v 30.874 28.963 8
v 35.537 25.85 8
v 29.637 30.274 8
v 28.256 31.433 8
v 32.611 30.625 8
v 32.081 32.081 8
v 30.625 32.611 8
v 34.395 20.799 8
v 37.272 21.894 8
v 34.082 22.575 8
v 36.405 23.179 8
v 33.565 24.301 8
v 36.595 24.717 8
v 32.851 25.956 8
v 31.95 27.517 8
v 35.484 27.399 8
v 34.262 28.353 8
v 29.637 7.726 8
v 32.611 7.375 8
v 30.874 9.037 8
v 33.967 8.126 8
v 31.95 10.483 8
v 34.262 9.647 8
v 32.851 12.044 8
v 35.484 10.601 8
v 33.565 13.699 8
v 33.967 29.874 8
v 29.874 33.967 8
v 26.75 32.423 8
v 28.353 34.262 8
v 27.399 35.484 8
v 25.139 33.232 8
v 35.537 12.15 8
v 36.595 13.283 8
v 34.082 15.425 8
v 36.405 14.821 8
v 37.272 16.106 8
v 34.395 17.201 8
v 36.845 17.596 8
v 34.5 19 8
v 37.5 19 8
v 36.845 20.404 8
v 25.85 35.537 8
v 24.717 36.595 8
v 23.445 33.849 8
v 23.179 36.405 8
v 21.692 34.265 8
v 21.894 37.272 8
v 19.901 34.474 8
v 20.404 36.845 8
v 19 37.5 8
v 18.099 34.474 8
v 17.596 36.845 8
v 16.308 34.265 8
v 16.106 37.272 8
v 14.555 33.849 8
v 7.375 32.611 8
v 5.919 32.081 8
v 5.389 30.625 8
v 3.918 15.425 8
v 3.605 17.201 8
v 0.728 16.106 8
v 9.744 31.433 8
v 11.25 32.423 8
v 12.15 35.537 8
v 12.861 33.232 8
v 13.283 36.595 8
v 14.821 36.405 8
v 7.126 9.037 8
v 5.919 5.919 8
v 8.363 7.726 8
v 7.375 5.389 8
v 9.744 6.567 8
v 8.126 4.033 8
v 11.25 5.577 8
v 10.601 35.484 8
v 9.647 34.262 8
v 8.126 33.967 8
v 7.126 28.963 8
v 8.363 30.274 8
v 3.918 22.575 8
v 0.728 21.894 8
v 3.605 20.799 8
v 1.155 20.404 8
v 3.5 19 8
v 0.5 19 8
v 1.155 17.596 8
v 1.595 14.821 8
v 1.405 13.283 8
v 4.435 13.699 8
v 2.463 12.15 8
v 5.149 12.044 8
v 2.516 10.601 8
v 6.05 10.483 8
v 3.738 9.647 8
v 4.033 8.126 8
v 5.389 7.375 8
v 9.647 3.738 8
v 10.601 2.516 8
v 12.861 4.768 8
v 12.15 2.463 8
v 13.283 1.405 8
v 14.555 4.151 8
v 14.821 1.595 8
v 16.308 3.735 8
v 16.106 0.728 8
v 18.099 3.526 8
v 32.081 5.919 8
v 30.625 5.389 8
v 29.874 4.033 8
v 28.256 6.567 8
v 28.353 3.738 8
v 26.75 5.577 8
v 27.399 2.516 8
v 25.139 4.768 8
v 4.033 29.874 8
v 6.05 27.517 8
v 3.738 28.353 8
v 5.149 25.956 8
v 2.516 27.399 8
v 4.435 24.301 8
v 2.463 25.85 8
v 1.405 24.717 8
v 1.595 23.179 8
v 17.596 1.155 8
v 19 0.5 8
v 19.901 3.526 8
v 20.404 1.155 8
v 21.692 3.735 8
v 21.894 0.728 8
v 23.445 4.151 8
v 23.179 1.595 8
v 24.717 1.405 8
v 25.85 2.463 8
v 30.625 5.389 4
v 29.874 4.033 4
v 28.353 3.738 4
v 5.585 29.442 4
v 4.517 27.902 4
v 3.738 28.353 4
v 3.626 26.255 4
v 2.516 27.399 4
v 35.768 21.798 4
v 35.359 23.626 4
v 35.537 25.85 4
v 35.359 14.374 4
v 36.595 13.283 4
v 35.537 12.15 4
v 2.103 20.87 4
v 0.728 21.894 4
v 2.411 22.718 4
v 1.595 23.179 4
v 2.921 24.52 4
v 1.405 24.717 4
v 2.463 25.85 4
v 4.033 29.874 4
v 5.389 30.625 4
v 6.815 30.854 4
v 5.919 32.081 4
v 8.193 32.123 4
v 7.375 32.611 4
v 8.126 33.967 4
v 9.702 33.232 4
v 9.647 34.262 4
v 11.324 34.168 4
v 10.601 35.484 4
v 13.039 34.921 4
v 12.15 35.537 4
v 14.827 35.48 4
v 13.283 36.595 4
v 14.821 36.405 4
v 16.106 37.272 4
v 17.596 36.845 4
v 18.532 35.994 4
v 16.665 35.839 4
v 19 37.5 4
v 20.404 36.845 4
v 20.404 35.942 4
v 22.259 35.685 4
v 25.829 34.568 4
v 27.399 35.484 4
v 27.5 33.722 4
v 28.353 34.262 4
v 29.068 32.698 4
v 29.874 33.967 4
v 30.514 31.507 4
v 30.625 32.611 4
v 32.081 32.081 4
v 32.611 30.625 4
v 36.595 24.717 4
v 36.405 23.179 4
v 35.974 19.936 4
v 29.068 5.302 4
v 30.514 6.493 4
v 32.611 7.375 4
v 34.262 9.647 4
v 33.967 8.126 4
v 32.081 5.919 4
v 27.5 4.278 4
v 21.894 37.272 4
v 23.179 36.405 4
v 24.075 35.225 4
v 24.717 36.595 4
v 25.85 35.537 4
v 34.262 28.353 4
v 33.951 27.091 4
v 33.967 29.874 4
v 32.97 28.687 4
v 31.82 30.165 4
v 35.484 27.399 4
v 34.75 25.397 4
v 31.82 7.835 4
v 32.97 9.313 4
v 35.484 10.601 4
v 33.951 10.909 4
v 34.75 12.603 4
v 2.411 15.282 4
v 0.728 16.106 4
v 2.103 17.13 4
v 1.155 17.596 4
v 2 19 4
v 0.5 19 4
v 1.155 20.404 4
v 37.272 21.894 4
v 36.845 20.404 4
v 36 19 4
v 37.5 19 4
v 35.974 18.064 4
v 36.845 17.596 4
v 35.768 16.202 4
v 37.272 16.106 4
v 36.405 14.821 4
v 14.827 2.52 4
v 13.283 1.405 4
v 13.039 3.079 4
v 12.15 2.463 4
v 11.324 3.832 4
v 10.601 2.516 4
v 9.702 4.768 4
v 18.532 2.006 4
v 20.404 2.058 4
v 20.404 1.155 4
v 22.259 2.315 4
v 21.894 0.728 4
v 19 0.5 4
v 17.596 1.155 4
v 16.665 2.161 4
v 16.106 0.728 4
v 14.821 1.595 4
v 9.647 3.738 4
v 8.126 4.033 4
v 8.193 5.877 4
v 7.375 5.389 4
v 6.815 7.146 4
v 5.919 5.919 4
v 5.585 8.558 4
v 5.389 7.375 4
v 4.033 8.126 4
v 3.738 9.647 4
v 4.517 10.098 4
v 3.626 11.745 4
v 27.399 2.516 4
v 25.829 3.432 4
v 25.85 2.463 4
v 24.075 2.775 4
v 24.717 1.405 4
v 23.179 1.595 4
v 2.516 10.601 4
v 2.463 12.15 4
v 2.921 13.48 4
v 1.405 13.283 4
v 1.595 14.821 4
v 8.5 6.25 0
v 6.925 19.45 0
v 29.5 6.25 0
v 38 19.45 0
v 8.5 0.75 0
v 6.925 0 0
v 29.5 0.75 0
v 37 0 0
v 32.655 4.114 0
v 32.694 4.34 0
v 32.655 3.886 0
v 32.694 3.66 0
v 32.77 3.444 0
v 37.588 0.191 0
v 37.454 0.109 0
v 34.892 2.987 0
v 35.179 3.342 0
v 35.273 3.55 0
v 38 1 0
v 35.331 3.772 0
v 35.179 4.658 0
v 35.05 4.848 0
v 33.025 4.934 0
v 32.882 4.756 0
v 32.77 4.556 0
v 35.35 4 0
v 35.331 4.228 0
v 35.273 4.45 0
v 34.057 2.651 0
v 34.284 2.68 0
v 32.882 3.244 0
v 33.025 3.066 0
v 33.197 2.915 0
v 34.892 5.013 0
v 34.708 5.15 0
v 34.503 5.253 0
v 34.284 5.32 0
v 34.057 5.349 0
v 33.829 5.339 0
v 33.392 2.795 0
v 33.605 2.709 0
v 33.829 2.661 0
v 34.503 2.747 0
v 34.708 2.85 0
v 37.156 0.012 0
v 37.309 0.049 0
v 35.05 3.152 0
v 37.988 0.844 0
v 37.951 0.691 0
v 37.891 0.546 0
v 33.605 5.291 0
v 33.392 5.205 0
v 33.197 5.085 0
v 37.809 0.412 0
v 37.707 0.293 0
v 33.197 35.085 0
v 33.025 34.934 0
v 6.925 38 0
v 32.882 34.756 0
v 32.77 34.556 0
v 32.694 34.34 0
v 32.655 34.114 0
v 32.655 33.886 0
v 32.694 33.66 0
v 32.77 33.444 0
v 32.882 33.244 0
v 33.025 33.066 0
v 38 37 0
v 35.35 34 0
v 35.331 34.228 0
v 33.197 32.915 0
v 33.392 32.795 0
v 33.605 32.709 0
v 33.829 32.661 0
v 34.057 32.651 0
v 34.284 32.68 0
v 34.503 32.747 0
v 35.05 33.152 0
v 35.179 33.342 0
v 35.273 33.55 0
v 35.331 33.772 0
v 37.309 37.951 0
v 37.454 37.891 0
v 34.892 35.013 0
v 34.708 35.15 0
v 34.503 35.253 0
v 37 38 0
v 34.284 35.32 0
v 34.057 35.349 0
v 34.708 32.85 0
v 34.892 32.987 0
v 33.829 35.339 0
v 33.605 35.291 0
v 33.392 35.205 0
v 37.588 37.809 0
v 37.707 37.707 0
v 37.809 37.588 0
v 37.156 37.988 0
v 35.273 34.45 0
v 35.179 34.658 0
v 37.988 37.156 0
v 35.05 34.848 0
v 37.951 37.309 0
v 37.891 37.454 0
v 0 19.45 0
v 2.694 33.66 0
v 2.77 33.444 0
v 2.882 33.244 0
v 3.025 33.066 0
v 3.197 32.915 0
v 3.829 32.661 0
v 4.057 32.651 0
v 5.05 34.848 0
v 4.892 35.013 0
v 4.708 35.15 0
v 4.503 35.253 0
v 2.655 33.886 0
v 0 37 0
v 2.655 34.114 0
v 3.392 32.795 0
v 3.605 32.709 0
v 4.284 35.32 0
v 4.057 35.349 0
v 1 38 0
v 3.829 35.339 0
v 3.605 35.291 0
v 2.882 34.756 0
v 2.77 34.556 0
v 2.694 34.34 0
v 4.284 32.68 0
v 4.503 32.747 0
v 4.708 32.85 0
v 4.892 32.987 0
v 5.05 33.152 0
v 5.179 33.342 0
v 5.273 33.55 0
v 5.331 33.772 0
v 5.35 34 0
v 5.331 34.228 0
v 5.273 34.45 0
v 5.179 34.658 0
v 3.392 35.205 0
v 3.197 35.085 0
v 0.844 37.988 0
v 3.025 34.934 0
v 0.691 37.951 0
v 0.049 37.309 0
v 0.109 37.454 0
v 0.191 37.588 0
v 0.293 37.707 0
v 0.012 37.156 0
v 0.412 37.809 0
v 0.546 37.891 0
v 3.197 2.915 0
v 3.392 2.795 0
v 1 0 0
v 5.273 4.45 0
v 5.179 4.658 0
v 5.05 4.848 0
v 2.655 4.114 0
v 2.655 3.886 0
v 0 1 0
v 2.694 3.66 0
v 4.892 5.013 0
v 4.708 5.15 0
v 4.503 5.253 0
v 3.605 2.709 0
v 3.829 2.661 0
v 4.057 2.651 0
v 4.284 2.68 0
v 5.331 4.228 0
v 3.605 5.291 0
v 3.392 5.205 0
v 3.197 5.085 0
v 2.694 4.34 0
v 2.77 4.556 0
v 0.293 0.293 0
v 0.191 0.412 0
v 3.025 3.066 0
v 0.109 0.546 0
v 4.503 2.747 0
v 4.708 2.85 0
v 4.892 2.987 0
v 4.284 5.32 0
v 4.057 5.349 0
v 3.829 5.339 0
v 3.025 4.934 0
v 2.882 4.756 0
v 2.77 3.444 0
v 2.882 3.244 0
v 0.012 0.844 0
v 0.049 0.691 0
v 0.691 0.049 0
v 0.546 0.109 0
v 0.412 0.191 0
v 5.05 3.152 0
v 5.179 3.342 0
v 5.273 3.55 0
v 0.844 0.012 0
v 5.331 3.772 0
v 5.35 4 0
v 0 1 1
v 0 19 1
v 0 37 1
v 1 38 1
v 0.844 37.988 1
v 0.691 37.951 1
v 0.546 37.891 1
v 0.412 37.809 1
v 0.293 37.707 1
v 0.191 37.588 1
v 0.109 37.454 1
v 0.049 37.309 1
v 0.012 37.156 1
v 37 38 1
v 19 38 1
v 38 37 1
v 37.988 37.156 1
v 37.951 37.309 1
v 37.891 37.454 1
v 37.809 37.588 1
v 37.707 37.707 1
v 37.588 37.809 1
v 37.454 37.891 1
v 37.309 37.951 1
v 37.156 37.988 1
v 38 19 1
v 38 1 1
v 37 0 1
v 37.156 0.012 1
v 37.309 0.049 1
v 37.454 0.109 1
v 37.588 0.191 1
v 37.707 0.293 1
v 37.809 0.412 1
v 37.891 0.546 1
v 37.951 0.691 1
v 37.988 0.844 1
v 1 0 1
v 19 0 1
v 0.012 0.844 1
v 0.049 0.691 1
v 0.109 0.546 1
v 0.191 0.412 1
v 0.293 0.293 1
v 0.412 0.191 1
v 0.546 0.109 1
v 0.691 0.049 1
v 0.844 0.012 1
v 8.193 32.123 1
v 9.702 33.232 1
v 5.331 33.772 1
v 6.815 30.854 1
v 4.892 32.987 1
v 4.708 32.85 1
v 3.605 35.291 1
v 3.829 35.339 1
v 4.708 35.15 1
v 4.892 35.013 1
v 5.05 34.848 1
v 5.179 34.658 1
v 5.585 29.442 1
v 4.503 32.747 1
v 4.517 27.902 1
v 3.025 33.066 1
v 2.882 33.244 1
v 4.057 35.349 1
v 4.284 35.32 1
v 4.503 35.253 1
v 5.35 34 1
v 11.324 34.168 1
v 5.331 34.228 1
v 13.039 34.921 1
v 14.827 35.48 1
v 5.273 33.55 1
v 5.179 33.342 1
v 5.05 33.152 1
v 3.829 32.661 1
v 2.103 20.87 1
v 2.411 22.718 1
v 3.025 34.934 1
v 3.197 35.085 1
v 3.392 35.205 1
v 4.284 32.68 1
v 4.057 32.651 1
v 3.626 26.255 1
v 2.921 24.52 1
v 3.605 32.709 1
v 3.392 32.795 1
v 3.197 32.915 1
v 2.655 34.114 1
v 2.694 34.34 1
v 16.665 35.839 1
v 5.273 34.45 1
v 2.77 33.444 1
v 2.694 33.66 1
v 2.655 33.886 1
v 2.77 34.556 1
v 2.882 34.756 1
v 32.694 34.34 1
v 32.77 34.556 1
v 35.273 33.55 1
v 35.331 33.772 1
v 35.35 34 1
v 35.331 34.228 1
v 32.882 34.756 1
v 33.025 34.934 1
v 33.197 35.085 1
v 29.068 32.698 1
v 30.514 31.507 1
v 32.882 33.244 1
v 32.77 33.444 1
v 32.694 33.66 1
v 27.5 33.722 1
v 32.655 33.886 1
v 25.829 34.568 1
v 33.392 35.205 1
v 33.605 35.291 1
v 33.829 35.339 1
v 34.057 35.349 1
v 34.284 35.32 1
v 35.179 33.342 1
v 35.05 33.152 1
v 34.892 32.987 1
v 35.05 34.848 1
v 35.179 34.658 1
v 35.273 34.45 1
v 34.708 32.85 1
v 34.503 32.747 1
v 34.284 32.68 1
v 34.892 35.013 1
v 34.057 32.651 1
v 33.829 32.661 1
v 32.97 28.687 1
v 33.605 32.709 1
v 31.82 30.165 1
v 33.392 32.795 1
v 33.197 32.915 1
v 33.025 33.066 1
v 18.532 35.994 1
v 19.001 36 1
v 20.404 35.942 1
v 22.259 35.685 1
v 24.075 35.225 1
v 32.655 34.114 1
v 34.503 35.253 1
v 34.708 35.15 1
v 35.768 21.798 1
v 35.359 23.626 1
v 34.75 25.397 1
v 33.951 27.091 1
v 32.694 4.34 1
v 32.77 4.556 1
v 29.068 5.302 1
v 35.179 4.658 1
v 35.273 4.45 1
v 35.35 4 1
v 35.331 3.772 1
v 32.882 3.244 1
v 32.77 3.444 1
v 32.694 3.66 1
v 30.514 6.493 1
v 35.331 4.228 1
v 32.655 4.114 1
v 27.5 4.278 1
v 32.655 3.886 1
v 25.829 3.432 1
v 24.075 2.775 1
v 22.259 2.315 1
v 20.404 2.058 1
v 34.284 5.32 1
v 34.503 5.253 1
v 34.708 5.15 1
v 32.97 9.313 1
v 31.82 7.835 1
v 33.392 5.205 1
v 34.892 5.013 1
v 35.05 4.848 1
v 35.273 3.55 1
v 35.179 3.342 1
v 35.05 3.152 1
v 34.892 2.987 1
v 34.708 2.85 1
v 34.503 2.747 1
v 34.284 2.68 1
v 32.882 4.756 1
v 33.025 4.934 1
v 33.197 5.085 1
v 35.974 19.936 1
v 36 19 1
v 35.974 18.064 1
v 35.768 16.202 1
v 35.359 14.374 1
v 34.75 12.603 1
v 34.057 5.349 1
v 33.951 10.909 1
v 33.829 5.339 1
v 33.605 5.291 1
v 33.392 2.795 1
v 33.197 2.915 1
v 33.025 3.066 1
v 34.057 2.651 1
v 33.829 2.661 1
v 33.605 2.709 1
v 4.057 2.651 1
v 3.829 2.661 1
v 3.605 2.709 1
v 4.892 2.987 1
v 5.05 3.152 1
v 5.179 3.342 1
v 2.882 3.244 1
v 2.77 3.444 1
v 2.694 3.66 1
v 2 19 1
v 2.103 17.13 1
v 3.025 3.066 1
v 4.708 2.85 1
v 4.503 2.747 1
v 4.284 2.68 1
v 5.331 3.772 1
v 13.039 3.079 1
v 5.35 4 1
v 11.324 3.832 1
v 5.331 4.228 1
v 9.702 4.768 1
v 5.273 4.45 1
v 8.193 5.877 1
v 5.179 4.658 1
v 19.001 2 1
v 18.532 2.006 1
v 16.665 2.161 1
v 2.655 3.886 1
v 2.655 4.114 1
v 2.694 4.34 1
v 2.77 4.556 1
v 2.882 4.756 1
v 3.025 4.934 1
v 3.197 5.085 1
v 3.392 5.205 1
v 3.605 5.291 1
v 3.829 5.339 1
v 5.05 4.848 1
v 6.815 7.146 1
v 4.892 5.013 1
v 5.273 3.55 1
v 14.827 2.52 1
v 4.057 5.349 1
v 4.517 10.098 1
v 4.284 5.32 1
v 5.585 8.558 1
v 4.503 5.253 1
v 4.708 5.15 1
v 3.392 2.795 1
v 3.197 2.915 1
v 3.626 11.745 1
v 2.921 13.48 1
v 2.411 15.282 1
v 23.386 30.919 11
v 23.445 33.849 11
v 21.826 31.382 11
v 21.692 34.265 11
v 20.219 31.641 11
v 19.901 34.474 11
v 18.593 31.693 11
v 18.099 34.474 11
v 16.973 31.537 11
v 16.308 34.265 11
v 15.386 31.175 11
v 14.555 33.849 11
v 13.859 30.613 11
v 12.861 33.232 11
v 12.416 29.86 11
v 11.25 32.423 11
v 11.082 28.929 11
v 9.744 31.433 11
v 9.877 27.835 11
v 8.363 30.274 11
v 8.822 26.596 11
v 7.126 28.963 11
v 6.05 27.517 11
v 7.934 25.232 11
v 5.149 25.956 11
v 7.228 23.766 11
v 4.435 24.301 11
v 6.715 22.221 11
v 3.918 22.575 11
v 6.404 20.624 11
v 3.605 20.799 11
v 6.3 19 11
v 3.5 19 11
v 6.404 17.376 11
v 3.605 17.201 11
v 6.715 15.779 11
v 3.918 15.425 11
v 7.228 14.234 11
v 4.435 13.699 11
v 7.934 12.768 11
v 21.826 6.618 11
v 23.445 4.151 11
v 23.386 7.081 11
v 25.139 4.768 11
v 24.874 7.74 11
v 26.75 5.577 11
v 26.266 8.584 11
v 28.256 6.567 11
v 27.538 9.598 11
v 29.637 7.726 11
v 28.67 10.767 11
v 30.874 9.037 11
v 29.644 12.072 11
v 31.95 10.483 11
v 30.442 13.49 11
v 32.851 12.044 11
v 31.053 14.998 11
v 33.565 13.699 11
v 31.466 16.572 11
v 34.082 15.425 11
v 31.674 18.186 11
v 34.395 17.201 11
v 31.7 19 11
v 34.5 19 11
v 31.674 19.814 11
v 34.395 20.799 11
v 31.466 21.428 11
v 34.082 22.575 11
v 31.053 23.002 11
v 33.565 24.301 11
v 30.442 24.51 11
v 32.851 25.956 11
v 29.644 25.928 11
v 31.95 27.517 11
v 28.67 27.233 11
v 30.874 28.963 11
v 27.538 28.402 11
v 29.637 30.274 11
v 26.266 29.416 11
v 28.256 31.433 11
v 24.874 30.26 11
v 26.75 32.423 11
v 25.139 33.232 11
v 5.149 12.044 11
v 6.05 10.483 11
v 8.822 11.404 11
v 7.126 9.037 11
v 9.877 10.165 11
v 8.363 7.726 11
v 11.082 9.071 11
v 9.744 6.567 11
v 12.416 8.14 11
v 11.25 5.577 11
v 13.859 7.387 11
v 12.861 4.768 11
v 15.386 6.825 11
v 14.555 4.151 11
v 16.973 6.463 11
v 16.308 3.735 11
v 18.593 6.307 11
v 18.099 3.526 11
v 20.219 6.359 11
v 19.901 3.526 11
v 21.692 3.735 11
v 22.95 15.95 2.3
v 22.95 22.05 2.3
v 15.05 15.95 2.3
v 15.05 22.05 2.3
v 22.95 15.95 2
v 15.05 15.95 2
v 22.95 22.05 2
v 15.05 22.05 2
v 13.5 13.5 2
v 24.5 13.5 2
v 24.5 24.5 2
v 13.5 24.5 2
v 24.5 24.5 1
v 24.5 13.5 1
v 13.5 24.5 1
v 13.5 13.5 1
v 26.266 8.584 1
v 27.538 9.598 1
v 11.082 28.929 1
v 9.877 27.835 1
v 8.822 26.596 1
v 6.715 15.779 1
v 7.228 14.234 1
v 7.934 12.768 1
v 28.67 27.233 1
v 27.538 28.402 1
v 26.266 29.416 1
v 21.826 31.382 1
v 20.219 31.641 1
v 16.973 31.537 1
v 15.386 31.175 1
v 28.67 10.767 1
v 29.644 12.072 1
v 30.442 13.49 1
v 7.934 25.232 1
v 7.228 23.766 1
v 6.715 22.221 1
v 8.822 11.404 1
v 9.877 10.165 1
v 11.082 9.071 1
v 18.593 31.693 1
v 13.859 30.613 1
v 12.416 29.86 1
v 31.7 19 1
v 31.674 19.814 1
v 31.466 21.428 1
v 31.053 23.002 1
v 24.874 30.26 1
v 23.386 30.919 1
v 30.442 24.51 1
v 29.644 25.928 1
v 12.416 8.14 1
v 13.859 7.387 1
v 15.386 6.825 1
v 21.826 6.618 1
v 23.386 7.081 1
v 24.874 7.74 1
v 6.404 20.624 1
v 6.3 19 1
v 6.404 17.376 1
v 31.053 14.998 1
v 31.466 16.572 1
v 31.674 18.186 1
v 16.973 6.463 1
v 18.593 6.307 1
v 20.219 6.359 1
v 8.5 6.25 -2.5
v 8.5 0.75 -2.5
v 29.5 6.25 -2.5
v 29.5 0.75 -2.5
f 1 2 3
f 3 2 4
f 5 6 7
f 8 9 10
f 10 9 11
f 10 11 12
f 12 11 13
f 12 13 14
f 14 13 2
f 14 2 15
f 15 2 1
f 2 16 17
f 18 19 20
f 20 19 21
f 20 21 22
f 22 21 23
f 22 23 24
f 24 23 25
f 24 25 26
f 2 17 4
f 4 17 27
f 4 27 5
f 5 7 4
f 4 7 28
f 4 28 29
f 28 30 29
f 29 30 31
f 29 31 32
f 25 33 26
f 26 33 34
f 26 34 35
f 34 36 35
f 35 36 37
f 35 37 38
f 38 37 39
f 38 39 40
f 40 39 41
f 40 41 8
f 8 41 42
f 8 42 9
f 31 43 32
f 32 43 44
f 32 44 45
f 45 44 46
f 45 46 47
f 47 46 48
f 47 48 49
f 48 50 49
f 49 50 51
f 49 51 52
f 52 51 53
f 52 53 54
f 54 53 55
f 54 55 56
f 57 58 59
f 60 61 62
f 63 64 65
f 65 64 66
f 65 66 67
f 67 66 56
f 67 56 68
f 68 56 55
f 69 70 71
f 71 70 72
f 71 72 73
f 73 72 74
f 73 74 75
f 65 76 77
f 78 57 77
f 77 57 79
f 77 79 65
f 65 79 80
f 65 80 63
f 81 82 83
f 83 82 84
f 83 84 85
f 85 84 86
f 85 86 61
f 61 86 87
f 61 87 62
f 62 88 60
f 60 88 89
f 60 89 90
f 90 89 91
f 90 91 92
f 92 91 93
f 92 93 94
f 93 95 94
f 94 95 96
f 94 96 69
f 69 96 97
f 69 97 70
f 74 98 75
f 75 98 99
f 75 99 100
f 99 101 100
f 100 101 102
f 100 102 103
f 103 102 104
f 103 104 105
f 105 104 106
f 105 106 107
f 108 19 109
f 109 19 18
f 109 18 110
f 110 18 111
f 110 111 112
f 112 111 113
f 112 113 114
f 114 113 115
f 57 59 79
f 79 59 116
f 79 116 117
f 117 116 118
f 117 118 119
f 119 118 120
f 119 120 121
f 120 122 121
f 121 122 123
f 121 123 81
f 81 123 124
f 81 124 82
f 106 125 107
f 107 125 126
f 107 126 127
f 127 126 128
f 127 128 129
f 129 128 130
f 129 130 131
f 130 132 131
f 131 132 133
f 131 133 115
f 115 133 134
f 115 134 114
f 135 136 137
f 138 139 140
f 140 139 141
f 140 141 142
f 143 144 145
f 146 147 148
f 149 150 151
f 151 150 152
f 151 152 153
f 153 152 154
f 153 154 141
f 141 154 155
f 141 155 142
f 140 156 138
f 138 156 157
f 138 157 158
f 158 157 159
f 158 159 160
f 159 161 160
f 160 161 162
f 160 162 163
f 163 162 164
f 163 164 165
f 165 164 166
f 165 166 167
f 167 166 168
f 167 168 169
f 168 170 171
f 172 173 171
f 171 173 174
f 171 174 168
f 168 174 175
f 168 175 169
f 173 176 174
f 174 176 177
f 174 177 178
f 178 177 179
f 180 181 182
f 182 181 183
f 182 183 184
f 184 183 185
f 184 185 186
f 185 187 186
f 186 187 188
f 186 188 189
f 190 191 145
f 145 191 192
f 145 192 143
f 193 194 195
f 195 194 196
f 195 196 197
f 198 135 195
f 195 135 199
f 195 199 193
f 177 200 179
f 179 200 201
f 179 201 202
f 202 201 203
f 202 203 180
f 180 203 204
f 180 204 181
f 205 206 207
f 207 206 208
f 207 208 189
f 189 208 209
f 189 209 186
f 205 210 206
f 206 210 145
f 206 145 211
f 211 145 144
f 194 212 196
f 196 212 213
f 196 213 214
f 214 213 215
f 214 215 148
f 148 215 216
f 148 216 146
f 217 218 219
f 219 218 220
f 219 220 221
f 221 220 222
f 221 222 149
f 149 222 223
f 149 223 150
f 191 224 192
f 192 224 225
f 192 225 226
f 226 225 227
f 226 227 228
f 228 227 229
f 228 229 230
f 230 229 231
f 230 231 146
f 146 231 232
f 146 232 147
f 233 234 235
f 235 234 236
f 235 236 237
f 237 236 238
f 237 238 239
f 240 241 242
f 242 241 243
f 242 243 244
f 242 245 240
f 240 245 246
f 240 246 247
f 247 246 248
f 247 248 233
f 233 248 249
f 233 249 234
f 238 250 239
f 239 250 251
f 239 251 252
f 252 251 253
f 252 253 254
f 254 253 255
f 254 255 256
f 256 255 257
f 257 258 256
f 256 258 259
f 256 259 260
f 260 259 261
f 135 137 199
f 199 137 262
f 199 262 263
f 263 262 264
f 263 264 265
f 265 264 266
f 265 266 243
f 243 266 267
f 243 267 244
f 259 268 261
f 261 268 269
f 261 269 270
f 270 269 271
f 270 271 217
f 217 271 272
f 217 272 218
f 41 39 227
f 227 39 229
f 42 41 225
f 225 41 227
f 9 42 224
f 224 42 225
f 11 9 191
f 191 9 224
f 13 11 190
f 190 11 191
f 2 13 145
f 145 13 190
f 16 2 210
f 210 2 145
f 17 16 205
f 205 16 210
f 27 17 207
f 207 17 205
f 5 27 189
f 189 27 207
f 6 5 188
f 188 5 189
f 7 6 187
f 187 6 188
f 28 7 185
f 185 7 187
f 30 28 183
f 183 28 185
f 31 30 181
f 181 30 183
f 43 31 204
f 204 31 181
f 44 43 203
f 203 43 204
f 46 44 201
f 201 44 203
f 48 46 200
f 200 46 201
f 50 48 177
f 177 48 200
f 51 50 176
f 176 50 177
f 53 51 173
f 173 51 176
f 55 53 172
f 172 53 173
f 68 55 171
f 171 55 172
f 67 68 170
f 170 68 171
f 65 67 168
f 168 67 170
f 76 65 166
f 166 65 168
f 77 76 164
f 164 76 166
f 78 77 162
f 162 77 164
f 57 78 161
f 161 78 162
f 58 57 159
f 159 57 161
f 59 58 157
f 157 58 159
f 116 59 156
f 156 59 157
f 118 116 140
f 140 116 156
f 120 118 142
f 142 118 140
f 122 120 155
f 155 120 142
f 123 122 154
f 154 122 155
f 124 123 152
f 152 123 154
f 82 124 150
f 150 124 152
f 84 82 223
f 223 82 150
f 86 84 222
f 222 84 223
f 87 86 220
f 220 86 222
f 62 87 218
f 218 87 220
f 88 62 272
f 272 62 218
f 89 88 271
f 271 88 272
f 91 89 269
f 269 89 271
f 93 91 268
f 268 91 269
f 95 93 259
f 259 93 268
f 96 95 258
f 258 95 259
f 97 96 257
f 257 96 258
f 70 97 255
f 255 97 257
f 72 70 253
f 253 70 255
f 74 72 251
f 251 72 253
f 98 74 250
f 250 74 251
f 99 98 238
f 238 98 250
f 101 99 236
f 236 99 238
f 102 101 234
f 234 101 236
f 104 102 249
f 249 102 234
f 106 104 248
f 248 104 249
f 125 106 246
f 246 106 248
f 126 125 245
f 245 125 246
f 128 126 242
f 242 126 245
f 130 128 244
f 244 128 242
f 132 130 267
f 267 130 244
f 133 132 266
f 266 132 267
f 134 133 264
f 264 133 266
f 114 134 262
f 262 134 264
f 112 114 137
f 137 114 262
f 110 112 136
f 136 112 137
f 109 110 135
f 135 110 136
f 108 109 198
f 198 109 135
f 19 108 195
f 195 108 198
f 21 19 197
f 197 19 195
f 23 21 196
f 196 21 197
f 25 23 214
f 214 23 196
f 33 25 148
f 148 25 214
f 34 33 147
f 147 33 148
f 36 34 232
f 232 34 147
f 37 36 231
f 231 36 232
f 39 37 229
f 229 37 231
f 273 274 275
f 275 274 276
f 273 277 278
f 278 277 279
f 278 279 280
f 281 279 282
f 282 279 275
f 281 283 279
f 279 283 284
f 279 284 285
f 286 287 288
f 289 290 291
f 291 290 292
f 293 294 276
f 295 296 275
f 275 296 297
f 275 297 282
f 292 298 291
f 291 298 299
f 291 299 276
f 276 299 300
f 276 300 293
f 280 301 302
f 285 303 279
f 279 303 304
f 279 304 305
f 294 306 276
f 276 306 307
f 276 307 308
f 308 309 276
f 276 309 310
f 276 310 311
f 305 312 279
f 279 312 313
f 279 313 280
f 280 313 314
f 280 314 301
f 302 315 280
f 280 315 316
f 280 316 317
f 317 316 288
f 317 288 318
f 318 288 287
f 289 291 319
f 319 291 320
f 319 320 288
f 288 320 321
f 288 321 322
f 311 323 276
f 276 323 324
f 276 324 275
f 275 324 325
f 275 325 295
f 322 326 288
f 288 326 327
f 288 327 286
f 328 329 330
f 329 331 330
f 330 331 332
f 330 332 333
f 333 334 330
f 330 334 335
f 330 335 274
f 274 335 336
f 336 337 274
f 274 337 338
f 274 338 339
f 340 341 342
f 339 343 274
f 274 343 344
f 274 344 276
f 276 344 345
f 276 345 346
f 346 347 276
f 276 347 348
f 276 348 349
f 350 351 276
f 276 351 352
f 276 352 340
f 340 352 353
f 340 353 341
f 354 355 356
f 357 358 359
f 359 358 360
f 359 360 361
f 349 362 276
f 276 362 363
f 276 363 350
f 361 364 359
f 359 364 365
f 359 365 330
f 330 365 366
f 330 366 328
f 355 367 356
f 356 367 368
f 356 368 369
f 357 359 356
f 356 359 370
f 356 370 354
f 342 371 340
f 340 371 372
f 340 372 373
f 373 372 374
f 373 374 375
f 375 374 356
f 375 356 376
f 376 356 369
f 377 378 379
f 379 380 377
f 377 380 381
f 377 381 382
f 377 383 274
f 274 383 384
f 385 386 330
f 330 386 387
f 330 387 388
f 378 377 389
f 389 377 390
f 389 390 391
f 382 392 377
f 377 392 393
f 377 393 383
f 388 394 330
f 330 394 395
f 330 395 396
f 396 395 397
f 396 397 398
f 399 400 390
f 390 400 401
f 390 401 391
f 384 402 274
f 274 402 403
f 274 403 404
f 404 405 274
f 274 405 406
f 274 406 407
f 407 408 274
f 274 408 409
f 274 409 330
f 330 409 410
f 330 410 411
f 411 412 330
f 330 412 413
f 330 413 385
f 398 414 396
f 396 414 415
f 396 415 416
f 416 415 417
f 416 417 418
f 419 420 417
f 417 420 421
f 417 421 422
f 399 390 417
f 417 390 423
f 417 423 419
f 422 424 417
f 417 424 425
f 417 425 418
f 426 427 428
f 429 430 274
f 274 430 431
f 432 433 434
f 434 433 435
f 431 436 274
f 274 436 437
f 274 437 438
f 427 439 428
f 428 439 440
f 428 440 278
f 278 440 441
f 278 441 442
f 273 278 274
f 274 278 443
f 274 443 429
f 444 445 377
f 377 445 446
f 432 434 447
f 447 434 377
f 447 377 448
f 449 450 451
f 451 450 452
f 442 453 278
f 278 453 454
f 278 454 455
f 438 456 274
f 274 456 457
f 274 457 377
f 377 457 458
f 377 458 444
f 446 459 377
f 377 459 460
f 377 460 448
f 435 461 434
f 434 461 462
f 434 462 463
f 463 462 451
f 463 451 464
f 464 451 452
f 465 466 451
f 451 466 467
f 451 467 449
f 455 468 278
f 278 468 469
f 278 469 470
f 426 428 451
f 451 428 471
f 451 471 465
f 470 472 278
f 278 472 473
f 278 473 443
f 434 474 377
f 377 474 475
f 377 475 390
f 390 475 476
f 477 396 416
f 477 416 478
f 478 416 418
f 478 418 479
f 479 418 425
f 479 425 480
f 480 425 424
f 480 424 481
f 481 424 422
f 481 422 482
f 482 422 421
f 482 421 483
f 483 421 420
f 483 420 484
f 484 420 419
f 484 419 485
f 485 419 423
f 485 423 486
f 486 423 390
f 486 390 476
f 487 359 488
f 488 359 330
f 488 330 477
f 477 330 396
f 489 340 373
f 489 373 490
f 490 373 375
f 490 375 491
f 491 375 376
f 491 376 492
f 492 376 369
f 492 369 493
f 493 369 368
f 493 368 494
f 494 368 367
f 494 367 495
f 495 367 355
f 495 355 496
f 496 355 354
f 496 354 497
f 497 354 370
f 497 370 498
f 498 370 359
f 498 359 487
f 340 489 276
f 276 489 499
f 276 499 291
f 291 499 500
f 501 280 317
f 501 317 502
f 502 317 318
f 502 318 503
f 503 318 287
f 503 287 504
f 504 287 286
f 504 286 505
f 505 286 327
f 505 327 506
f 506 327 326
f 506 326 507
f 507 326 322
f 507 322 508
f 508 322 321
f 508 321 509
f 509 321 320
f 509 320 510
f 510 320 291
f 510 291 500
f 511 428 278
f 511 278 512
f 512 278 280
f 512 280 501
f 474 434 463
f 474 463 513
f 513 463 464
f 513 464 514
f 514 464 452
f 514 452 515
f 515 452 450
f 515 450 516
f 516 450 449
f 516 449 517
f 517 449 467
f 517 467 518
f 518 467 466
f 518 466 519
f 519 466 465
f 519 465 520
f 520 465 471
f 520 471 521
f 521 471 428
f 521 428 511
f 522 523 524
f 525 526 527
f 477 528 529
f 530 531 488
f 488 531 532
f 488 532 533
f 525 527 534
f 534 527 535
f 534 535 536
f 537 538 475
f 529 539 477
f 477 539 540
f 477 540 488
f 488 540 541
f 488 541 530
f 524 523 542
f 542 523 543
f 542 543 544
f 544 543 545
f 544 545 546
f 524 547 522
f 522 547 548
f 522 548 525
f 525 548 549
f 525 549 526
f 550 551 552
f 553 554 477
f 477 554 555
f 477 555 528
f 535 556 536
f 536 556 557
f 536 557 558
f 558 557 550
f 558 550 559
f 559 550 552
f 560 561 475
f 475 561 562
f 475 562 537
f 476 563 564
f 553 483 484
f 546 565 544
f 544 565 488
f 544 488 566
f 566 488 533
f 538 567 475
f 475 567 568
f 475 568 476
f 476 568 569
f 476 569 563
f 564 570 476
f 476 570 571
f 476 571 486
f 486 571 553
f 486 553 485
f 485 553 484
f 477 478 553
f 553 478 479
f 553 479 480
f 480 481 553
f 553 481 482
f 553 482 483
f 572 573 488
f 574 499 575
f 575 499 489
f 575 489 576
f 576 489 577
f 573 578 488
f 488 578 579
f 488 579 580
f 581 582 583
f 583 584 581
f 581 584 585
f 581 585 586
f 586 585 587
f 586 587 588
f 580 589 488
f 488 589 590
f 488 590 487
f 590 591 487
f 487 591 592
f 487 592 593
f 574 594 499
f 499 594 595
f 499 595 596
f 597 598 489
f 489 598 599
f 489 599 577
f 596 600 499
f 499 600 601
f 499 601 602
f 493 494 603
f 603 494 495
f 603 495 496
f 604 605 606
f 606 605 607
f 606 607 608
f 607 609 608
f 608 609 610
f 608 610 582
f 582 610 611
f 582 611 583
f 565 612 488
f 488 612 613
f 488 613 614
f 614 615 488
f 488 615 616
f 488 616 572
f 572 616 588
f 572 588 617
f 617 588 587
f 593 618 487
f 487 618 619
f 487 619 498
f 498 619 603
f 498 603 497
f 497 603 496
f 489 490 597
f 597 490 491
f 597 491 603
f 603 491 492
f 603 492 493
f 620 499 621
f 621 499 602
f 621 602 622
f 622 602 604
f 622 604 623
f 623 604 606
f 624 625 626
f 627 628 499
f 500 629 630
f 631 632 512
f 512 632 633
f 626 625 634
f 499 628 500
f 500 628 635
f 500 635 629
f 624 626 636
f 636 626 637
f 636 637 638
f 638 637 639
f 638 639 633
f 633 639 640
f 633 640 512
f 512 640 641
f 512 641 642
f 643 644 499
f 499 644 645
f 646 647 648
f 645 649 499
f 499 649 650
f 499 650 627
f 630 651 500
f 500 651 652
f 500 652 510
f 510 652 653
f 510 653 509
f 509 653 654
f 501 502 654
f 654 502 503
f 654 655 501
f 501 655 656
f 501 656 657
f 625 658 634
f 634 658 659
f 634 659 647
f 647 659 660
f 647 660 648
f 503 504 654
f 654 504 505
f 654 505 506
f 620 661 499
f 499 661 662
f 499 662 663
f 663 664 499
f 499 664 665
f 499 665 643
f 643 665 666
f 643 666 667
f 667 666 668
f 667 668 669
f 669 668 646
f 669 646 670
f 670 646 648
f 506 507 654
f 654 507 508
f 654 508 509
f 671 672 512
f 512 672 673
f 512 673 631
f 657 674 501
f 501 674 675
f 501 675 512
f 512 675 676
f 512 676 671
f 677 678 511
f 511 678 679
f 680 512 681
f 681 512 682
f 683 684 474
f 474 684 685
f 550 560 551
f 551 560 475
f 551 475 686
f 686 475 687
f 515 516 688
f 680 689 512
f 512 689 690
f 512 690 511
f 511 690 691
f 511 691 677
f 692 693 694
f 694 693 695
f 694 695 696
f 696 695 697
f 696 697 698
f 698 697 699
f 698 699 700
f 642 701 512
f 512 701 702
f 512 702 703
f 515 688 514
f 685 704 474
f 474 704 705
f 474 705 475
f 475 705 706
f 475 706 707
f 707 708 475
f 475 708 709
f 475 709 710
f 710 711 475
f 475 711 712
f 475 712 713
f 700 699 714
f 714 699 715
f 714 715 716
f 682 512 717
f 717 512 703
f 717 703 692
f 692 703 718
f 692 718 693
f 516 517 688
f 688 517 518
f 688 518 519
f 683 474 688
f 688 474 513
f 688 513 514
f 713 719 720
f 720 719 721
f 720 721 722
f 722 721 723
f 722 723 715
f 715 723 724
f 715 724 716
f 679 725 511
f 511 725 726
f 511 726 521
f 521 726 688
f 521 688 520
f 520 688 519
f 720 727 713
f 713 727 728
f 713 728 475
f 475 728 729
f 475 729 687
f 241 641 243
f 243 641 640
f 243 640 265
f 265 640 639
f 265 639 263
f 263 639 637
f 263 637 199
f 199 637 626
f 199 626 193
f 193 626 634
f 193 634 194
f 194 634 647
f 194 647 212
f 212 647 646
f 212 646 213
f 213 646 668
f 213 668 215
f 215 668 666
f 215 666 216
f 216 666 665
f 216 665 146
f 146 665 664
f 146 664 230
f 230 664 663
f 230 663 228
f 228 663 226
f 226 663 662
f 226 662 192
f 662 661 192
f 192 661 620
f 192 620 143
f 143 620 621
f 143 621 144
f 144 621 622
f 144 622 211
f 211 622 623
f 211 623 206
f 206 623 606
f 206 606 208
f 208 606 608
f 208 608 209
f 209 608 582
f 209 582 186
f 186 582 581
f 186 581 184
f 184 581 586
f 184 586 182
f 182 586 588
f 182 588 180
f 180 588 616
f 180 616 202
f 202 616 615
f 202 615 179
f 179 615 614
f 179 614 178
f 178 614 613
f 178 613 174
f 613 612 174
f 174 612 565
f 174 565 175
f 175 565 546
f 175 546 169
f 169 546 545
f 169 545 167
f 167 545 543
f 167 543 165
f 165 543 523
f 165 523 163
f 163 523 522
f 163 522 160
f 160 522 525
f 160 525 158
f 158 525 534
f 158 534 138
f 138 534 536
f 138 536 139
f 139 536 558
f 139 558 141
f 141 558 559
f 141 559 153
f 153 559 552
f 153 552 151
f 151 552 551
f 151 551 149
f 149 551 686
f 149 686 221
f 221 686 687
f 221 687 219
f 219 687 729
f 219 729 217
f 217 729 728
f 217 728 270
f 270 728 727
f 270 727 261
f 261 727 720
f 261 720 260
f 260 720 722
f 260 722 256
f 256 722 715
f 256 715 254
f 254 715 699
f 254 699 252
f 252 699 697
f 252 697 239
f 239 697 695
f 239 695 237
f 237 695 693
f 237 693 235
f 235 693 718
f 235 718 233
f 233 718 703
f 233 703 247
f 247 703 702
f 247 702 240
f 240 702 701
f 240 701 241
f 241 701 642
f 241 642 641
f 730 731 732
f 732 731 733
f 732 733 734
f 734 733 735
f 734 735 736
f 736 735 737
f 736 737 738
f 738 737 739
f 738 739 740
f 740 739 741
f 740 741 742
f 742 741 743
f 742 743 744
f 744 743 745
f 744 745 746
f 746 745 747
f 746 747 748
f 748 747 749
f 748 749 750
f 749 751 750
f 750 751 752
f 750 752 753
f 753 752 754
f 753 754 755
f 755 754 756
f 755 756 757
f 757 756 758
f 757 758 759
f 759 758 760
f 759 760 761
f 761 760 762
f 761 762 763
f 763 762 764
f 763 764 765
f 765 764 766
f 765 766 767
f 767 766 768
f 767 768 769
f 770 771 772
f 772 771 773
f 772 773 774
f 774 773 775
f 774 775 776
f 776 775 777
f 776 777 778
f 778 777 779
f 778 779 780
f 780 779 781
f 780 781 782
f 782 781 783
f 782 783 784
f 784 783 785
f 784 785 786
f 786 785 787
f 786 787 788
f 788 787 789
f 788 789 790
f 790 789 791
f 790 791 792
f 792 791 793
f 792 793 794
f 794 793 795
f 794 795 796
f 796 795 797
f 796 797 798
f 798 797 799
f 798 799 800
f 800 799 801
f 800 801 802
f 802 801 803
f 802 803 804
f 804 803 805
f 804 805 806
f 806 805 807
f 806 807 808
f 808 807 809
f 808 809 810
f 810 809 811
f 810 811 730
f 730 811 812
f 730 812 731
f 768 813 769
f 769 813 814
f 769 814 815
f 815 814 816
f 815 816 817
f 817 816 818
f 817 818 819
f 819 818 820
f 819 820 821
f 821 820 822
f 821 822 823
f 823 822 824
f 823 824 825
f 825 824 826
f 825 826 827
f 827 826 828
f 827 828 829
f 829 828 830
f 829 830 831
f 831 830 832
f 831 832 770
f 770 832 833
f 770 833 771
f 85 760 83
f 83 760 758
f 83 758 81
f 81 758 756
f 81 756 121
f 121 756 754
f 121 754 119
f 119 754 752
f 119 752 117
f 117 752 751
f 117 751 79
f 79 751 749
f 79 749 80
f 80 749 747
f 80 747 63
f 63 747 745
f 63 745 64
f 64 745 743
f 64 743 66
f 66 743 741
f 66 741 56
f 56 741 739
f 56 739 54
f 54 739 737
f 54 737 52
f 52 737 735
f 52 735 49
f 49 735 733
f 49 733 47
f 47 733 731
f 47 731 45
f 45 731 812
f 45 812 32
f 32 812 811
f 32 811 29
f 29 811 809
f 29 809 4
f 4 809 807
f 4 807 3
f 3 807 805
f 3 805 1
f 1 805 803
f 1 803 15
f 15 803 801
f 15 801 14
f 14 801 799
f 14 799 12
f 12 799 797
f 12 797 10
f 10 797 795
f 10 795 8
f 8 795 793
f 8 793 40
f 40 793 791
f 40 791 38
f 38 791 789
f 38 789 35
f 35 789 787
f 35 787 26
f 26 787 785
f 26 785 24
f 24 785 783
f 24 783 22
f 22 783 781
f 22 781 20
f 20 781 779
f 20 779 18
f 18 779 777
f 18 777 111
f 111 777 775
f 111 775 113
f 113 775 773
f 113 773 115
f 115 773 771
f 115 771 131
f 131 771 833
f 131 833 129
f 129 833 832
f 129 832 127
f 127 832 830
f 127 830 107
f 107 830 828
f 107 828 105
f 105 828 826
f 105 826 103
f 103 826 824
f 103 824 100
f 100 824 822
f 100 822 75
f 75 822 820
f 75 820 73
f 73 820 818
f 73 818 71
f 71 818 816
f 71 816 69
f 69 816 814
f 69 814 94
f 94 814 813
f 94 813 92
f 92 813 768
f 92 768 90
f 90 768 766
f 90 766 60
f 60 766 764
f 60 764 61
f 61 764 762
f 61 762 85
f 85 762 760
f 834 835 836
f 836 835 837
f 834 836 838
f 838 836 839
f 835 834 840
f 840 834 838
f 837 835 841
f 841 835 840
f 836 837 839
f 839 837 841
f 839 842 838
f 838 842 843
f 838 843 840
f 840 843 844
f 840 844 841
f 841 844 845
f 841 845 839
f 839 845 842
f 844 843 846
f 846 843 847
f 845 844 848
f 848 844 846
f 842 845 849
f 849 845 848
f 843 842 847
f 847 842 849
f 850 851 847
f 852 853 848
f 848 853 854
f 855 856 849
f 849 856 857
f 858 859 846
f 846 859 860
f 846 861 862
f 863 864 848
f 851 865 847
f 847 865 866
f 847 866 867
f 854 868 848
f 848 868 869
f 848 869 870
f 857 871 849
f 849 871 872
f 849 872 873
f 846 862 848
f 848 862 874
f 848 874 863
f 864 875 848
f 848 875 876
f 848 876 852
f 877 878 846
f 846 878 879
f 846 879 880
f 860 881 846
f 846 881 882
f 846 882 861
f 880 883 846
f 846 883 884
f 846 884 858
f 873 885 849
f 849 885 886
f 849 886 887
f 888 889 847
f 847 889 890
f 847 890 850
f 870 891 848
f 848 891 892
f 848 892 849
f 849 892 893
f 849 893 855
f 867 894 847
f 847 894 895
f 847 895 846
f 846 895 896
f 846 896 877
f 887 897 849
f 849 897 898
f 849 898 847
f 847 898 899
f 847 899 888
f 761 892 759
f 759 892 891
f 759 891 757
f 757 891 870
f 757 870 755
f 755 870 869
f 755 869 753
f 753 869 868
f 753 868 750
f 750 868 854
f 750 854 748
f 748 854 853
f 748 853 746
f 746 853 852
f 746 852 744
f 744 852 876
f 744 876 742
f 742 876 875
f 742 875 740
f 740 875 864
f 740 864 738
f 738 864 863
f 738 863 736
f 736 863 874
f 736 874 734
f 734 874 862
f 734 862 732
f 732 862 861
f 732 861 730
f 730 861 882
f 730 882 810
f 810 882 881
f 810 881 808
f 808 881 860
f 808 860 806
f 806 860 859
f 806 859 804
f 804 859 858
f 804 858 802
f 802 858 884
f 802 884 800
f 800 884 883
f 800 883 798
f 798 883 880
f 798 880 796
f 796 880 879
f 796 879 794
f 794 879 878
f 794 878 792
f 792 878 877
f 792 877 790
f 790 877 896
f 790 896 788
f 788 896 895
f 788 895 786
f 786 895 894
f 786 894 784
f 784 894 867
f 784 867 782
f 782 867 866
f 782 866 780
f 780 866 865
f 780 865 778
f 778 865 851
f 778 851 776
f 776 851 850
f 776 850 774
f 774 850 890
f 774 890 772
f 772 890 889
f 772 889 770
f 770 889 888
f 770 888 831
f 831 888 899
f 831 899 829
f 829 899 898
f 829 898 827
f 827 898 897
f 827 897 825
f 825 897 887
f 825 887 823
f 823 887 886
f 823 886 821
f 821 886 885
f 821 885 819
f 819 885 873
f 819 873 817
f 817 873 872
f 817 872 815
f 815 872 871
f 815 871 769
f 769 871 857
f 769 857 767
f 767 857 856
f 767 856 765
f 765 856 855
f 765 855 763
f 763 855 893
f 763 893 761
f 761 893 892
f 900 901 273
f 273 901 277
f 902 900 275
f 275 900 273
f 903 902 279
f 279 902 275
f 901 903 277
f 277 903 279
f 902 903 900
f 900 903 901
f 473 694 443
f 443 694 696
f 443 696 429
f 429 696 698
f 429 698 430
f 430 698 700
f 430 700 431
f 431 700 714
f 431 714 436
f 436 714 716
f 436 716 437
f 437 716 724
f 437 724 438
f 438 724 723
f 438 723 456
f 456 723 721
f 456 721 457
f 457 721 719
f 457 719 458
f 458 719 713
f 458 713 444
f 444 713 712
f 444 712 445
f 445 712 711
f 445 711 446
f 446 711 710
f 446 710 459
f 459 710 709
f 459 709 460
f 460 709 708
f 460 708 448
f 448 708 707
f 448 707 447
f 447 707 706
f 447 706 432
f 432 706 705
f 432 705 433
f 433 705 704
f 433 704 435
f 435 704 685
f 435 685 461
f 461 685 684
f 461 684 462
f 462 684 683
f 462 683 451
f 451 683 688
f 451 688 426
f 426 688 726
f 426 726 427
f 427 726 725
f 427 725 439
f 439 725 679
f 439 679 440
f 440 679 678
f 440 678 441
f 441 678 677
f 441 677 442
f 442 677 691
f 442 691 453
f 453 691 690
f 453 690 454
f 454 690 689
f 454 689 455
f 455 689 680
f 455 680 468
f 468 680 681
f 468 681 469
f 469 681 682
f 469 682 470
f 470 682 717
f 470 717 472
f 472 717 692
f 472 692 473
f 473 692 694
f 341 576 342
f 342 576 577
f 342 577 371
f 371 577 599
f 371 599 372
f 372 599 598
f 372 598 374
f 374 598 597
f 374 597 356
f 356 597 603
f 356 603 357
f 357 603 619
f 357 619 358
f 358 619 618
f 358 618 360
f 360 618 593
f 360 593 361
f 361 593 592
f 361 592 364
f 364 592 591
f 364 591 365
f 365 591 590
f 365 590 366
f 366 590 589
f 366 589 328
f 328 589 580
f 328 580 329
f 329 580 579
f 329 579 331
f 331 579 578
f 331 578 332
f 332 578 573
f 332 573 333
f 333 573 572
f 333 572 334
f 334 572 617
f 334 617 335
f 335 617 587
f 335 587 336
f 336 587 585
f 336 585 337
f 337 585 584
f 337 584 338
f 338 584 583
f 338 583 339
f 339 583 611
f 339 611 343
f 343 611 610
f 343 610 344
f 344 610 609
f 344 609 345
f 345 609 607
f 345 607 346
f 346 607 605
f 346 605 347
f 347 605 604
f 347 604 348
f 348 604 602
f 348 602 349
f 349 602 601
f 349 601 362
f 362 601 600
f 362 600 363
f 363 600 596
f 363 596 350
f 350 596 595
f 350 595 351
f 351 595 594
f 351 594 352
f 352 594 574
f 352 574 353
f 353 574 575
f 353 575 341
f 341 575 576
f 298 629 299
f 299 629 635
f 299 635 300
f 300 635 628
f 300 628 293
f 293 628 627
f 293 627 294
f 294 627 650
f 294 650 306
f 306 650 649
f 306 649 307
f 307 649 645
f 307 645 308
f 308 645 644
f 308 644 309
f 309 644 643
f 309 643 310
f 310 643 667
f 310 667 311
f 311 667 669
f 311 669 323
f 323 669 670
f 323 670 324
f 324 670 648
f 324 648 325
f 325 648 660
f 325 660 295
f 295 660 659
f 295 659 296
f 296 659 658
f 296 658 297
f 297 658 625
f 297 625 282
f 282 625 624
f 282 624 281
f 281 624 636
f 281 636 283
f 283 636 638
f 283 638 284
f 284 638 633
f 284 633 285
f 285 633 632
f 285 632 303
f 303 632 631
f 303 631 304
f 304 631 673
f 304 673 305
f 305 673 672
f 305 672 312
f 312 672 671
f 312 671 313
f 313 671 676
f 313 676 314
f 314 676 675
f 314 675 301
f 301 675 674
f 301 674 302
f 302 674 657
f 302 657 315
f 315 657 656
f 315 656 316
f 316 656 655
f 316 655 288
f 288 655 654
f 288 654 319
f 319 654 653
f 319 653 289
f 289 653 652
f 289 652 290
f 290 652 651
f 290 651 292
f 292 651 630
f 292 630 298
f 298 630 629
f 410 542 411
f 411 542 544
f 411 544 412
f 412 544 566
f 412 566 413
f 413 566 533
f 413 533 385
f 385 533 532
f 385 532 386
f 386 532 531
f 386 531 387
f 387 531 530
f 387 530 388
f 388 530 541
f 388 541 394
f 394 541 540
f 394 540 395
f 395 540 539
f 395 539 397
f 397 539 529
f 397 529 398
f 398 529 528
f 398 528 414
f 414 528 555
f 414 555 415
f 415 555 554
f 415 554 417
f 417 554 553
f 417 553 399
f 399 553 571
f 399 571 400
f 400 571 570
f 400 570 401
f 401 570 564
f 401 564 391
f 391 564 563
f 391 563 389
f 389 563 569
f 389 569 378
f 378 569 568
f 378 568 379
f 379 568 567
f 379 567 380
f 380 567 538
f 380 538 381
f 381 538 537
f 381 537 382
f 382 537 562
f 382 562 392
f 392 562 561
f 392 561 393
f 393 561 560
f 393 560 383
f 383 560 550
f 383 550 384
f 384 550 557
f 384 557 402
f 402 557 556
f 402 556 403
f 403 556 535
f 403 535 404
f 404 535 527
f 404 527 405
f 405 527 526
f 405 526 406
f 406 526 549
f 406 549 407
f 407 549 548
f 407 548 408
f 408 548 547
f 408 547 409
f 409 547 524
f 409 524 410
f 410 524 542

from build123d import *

# Parameters (mm, degrees)
PCB_DEPTH           = 1
SKETCH2_W           = 11
SKETCH2_H           = 11
SENSOR_DEPTH        = 1
SKETCH3_W           = 7.9
SKETCH3_H           = 6.1
SENSOR_GLASS_DEPTH  = 0.3
SKETCH4_R           = 17
SKETCH4_R_2         = 12.7
MOUNT_BASE_DEPTH    = 3
SKETCH5_R           = 12.7
LOCK_RING_DEPTH     = 4
SKETCH6_R           = 15.5
SKETCH6_R_2         = 12.7
CS_TUBE_DEPTH       = 3
SKETCH7_W           = 21
SKETCH7_H           = 5.5
FFC_CONNECTOR_DEPTH = 2.5
SKETCH8_R           = 1.35
HOLES_DEPTH         = 1


with BuildPart() as part:
    # Sketch1 → PCB (new body)
    with BuildSketch(Plane.XY):
        with BuildLine():
            Line((1, 0), (37, 0))
            ThreePointArc((37, 0), (37.707106781, 0.292893219), (38, 1))
            Line((38, 1), (38, 37))
            ThreePointArc((38, 37), (37.707106781, 37.707106781), (37, 38))
            Line((37, 38), (1, 38))
            ThreePointArc((1, 38), (0.292893219, 37.707106781), (0, 37))
            Line((0, 37), (0, 1))
            ThreePointArc((0, 1), (0.292893219, 0.292893219), (1, 0))
        make_face()
    extrude(amount=PCB_DEPTH)

    # Sketch2 → Sensor (add)
    with BuildSketch(Plane.XY.offset(1)):
        with Locations((19, 19)):
            Rectangle(SKETCH2_W, SKETCH2_H)
    extrude(amount=SENSOR_DEPTH)

    # Sketch3 → Sensor_glass (add)
    with BuildSketch(Plane.XY.offset(2)):
        with Locations((19, 19)):
            Rectangle(SKETCH3_W, SKETCH3_H)
    extrude(amount=SENSOR_GLASS_DEPTH)

    # Sketch4 → Mount_base (add)
    with BuildSketch(Plane.XY.offset(1)):
        with Locations((19, 19)):
            Circle(SKETCH4_R)
        with Locations((19, 19)):
            Circle(SKETCH4_R_2, mode=Mode.SUBTRACT)
    extrude(amount=MOUNT_BASE_DEPTH)

    # Sketch5 → Lock_ring (add)
    with BuildSketch(Plane.XY.offset(4)):
        Polygon((37.5, 19), (36.844820274, 20.404417814), (37.272234301, 21.894037603), (36.405421575, 23.178672013), (36.594545551, 24.716814396), (35.537443632, 25.850033439), (35.483620697, 27.398824245), (34.262258942, 28.352724308), (33.966814396, 29.874027167), (32.611266784, 30.625120065), (32.081475452, 32.081475452), (30.625120065, 32.611266784), (29.874027167, 33.966814396), (28.352724308, 34.262258942), (27.398824245, 35.483620697), (25.850033439, 35.537443632), (24.716814396, 36.594545551), (23.178672013, 36.405421575), (21.894037603, 37.272234301), (20.404417814, 36.844820274), (19, 37.5), (17.595582186, 36.844820274), (16.105962397, 37.272234301), (14.821327987, 36.405421575), (13.283185604, 36.594545551), (12.149966561, 35.537443632), (10.601175755, 35.483620697), (9.647275692, 34.262258942), (8.125972833, 33.966814396), (7.374879935, 32.611266784), (5.918524548, 32.081475452), (5.388733216, 30.625120065), (4.033185604, 29.874027167), (3.737741058, 28.352724308), (2.516379303, 27.398824245), (2.462556368, 25.850033439), (1.405454449, 24.716814396), (1.594578425, 23.178672013), (0.727765699, 21.894037603), (1.155179726, 20.404417814), (0.5, 19), (1.155179726, 17.595582186), (0.727765699, 16.105962397), (1.594578425, 14.821327987), (1.405454449, 13.283185604), (2.462556368, 12.149966561), (2.516379303, 10.601175755), (3.737741058, 9.647275692), (4.033185604, 8.125972833), (5.388733216, 7.374879935), (5.918524548, 5.918524548), (7.374879935, 5.388733216), (8.125972833, 4.033185604), (9.647275692, 3.737741058), (10.601175755, 2.516379303), (12.149966561, 2.462556368), (13.283185604, 1.405454449), (14.821327987, 1.594578425), (16.105962397, 0.727765699), (17.595582186, 1.155179726), (19, 0.5), (20.404417814, 1.155179726), (21.894037603, 0.727765699), (23.178672013, 1.594578425), (24.716814396, 1.405454449), (25.850033439, 2.462556368), (27.398824245, 2.516379303), (28.352724308, 3.737741058), (29.874027167, 4.033185604), (30.625120065, 5.388733216), (32.081475452, 5.918524548), (32.611266784, 7.374879935), (33.966814396, 8.125972833), (34.262258942, 9.647275692), (35.483620697, 10.601175755), (35.537443632, 12.149966561), (36.594545551, 13.283185604), (36.405421575, 14.821327987), (37.272234301, 16.105962397), (36.844820274, 17.595582186), align=None)
        with Locations((19, 19)):
            Circle(SKETCH5_R, mode=Mode.SUBTRACT)
    extrude(amount=LOCK_RING_DEPTH)

    # Sketch6 → CS_tube (add)
    with BuildSketch(Plane.XY.offset(8)):
        with Locations((19, 19)):
            Circle(SKETCH6_R)
        with Locations((19, 19)):
            Circle(SKETCH6_R_2, mode=Mode.SUBTRACT)
    extrude(amount=CS_TUBE_DEPTH)

    # Sketch7 → FFC_connector (add)
    with BuildSketch(Plane.XY):
        with Locations((19, 3.5)):
            Rectangle(SKETCH7_W, SKETCH7_H)
    extrude(amount=-FFC_CONNECTOR_DEPTH)

    # Sketch8 → Holes (cut)
    with BuildSketch(Plane.XY.offset(1)):
        with Locations((4, 4)):
            Circle(SKETCH8_R)
        with Locations((4, 34)):
            Circle(SKETCH8_R)
        with Locations((34, 4)):
            Circle(SKETCH8_R)
        with Locations((34, 34)):
            Circle(SKETCH8_R)
    extrude(amount=-HOLES_DEPTH, mode=Mode.SUBTRACT)


solid = part.part
